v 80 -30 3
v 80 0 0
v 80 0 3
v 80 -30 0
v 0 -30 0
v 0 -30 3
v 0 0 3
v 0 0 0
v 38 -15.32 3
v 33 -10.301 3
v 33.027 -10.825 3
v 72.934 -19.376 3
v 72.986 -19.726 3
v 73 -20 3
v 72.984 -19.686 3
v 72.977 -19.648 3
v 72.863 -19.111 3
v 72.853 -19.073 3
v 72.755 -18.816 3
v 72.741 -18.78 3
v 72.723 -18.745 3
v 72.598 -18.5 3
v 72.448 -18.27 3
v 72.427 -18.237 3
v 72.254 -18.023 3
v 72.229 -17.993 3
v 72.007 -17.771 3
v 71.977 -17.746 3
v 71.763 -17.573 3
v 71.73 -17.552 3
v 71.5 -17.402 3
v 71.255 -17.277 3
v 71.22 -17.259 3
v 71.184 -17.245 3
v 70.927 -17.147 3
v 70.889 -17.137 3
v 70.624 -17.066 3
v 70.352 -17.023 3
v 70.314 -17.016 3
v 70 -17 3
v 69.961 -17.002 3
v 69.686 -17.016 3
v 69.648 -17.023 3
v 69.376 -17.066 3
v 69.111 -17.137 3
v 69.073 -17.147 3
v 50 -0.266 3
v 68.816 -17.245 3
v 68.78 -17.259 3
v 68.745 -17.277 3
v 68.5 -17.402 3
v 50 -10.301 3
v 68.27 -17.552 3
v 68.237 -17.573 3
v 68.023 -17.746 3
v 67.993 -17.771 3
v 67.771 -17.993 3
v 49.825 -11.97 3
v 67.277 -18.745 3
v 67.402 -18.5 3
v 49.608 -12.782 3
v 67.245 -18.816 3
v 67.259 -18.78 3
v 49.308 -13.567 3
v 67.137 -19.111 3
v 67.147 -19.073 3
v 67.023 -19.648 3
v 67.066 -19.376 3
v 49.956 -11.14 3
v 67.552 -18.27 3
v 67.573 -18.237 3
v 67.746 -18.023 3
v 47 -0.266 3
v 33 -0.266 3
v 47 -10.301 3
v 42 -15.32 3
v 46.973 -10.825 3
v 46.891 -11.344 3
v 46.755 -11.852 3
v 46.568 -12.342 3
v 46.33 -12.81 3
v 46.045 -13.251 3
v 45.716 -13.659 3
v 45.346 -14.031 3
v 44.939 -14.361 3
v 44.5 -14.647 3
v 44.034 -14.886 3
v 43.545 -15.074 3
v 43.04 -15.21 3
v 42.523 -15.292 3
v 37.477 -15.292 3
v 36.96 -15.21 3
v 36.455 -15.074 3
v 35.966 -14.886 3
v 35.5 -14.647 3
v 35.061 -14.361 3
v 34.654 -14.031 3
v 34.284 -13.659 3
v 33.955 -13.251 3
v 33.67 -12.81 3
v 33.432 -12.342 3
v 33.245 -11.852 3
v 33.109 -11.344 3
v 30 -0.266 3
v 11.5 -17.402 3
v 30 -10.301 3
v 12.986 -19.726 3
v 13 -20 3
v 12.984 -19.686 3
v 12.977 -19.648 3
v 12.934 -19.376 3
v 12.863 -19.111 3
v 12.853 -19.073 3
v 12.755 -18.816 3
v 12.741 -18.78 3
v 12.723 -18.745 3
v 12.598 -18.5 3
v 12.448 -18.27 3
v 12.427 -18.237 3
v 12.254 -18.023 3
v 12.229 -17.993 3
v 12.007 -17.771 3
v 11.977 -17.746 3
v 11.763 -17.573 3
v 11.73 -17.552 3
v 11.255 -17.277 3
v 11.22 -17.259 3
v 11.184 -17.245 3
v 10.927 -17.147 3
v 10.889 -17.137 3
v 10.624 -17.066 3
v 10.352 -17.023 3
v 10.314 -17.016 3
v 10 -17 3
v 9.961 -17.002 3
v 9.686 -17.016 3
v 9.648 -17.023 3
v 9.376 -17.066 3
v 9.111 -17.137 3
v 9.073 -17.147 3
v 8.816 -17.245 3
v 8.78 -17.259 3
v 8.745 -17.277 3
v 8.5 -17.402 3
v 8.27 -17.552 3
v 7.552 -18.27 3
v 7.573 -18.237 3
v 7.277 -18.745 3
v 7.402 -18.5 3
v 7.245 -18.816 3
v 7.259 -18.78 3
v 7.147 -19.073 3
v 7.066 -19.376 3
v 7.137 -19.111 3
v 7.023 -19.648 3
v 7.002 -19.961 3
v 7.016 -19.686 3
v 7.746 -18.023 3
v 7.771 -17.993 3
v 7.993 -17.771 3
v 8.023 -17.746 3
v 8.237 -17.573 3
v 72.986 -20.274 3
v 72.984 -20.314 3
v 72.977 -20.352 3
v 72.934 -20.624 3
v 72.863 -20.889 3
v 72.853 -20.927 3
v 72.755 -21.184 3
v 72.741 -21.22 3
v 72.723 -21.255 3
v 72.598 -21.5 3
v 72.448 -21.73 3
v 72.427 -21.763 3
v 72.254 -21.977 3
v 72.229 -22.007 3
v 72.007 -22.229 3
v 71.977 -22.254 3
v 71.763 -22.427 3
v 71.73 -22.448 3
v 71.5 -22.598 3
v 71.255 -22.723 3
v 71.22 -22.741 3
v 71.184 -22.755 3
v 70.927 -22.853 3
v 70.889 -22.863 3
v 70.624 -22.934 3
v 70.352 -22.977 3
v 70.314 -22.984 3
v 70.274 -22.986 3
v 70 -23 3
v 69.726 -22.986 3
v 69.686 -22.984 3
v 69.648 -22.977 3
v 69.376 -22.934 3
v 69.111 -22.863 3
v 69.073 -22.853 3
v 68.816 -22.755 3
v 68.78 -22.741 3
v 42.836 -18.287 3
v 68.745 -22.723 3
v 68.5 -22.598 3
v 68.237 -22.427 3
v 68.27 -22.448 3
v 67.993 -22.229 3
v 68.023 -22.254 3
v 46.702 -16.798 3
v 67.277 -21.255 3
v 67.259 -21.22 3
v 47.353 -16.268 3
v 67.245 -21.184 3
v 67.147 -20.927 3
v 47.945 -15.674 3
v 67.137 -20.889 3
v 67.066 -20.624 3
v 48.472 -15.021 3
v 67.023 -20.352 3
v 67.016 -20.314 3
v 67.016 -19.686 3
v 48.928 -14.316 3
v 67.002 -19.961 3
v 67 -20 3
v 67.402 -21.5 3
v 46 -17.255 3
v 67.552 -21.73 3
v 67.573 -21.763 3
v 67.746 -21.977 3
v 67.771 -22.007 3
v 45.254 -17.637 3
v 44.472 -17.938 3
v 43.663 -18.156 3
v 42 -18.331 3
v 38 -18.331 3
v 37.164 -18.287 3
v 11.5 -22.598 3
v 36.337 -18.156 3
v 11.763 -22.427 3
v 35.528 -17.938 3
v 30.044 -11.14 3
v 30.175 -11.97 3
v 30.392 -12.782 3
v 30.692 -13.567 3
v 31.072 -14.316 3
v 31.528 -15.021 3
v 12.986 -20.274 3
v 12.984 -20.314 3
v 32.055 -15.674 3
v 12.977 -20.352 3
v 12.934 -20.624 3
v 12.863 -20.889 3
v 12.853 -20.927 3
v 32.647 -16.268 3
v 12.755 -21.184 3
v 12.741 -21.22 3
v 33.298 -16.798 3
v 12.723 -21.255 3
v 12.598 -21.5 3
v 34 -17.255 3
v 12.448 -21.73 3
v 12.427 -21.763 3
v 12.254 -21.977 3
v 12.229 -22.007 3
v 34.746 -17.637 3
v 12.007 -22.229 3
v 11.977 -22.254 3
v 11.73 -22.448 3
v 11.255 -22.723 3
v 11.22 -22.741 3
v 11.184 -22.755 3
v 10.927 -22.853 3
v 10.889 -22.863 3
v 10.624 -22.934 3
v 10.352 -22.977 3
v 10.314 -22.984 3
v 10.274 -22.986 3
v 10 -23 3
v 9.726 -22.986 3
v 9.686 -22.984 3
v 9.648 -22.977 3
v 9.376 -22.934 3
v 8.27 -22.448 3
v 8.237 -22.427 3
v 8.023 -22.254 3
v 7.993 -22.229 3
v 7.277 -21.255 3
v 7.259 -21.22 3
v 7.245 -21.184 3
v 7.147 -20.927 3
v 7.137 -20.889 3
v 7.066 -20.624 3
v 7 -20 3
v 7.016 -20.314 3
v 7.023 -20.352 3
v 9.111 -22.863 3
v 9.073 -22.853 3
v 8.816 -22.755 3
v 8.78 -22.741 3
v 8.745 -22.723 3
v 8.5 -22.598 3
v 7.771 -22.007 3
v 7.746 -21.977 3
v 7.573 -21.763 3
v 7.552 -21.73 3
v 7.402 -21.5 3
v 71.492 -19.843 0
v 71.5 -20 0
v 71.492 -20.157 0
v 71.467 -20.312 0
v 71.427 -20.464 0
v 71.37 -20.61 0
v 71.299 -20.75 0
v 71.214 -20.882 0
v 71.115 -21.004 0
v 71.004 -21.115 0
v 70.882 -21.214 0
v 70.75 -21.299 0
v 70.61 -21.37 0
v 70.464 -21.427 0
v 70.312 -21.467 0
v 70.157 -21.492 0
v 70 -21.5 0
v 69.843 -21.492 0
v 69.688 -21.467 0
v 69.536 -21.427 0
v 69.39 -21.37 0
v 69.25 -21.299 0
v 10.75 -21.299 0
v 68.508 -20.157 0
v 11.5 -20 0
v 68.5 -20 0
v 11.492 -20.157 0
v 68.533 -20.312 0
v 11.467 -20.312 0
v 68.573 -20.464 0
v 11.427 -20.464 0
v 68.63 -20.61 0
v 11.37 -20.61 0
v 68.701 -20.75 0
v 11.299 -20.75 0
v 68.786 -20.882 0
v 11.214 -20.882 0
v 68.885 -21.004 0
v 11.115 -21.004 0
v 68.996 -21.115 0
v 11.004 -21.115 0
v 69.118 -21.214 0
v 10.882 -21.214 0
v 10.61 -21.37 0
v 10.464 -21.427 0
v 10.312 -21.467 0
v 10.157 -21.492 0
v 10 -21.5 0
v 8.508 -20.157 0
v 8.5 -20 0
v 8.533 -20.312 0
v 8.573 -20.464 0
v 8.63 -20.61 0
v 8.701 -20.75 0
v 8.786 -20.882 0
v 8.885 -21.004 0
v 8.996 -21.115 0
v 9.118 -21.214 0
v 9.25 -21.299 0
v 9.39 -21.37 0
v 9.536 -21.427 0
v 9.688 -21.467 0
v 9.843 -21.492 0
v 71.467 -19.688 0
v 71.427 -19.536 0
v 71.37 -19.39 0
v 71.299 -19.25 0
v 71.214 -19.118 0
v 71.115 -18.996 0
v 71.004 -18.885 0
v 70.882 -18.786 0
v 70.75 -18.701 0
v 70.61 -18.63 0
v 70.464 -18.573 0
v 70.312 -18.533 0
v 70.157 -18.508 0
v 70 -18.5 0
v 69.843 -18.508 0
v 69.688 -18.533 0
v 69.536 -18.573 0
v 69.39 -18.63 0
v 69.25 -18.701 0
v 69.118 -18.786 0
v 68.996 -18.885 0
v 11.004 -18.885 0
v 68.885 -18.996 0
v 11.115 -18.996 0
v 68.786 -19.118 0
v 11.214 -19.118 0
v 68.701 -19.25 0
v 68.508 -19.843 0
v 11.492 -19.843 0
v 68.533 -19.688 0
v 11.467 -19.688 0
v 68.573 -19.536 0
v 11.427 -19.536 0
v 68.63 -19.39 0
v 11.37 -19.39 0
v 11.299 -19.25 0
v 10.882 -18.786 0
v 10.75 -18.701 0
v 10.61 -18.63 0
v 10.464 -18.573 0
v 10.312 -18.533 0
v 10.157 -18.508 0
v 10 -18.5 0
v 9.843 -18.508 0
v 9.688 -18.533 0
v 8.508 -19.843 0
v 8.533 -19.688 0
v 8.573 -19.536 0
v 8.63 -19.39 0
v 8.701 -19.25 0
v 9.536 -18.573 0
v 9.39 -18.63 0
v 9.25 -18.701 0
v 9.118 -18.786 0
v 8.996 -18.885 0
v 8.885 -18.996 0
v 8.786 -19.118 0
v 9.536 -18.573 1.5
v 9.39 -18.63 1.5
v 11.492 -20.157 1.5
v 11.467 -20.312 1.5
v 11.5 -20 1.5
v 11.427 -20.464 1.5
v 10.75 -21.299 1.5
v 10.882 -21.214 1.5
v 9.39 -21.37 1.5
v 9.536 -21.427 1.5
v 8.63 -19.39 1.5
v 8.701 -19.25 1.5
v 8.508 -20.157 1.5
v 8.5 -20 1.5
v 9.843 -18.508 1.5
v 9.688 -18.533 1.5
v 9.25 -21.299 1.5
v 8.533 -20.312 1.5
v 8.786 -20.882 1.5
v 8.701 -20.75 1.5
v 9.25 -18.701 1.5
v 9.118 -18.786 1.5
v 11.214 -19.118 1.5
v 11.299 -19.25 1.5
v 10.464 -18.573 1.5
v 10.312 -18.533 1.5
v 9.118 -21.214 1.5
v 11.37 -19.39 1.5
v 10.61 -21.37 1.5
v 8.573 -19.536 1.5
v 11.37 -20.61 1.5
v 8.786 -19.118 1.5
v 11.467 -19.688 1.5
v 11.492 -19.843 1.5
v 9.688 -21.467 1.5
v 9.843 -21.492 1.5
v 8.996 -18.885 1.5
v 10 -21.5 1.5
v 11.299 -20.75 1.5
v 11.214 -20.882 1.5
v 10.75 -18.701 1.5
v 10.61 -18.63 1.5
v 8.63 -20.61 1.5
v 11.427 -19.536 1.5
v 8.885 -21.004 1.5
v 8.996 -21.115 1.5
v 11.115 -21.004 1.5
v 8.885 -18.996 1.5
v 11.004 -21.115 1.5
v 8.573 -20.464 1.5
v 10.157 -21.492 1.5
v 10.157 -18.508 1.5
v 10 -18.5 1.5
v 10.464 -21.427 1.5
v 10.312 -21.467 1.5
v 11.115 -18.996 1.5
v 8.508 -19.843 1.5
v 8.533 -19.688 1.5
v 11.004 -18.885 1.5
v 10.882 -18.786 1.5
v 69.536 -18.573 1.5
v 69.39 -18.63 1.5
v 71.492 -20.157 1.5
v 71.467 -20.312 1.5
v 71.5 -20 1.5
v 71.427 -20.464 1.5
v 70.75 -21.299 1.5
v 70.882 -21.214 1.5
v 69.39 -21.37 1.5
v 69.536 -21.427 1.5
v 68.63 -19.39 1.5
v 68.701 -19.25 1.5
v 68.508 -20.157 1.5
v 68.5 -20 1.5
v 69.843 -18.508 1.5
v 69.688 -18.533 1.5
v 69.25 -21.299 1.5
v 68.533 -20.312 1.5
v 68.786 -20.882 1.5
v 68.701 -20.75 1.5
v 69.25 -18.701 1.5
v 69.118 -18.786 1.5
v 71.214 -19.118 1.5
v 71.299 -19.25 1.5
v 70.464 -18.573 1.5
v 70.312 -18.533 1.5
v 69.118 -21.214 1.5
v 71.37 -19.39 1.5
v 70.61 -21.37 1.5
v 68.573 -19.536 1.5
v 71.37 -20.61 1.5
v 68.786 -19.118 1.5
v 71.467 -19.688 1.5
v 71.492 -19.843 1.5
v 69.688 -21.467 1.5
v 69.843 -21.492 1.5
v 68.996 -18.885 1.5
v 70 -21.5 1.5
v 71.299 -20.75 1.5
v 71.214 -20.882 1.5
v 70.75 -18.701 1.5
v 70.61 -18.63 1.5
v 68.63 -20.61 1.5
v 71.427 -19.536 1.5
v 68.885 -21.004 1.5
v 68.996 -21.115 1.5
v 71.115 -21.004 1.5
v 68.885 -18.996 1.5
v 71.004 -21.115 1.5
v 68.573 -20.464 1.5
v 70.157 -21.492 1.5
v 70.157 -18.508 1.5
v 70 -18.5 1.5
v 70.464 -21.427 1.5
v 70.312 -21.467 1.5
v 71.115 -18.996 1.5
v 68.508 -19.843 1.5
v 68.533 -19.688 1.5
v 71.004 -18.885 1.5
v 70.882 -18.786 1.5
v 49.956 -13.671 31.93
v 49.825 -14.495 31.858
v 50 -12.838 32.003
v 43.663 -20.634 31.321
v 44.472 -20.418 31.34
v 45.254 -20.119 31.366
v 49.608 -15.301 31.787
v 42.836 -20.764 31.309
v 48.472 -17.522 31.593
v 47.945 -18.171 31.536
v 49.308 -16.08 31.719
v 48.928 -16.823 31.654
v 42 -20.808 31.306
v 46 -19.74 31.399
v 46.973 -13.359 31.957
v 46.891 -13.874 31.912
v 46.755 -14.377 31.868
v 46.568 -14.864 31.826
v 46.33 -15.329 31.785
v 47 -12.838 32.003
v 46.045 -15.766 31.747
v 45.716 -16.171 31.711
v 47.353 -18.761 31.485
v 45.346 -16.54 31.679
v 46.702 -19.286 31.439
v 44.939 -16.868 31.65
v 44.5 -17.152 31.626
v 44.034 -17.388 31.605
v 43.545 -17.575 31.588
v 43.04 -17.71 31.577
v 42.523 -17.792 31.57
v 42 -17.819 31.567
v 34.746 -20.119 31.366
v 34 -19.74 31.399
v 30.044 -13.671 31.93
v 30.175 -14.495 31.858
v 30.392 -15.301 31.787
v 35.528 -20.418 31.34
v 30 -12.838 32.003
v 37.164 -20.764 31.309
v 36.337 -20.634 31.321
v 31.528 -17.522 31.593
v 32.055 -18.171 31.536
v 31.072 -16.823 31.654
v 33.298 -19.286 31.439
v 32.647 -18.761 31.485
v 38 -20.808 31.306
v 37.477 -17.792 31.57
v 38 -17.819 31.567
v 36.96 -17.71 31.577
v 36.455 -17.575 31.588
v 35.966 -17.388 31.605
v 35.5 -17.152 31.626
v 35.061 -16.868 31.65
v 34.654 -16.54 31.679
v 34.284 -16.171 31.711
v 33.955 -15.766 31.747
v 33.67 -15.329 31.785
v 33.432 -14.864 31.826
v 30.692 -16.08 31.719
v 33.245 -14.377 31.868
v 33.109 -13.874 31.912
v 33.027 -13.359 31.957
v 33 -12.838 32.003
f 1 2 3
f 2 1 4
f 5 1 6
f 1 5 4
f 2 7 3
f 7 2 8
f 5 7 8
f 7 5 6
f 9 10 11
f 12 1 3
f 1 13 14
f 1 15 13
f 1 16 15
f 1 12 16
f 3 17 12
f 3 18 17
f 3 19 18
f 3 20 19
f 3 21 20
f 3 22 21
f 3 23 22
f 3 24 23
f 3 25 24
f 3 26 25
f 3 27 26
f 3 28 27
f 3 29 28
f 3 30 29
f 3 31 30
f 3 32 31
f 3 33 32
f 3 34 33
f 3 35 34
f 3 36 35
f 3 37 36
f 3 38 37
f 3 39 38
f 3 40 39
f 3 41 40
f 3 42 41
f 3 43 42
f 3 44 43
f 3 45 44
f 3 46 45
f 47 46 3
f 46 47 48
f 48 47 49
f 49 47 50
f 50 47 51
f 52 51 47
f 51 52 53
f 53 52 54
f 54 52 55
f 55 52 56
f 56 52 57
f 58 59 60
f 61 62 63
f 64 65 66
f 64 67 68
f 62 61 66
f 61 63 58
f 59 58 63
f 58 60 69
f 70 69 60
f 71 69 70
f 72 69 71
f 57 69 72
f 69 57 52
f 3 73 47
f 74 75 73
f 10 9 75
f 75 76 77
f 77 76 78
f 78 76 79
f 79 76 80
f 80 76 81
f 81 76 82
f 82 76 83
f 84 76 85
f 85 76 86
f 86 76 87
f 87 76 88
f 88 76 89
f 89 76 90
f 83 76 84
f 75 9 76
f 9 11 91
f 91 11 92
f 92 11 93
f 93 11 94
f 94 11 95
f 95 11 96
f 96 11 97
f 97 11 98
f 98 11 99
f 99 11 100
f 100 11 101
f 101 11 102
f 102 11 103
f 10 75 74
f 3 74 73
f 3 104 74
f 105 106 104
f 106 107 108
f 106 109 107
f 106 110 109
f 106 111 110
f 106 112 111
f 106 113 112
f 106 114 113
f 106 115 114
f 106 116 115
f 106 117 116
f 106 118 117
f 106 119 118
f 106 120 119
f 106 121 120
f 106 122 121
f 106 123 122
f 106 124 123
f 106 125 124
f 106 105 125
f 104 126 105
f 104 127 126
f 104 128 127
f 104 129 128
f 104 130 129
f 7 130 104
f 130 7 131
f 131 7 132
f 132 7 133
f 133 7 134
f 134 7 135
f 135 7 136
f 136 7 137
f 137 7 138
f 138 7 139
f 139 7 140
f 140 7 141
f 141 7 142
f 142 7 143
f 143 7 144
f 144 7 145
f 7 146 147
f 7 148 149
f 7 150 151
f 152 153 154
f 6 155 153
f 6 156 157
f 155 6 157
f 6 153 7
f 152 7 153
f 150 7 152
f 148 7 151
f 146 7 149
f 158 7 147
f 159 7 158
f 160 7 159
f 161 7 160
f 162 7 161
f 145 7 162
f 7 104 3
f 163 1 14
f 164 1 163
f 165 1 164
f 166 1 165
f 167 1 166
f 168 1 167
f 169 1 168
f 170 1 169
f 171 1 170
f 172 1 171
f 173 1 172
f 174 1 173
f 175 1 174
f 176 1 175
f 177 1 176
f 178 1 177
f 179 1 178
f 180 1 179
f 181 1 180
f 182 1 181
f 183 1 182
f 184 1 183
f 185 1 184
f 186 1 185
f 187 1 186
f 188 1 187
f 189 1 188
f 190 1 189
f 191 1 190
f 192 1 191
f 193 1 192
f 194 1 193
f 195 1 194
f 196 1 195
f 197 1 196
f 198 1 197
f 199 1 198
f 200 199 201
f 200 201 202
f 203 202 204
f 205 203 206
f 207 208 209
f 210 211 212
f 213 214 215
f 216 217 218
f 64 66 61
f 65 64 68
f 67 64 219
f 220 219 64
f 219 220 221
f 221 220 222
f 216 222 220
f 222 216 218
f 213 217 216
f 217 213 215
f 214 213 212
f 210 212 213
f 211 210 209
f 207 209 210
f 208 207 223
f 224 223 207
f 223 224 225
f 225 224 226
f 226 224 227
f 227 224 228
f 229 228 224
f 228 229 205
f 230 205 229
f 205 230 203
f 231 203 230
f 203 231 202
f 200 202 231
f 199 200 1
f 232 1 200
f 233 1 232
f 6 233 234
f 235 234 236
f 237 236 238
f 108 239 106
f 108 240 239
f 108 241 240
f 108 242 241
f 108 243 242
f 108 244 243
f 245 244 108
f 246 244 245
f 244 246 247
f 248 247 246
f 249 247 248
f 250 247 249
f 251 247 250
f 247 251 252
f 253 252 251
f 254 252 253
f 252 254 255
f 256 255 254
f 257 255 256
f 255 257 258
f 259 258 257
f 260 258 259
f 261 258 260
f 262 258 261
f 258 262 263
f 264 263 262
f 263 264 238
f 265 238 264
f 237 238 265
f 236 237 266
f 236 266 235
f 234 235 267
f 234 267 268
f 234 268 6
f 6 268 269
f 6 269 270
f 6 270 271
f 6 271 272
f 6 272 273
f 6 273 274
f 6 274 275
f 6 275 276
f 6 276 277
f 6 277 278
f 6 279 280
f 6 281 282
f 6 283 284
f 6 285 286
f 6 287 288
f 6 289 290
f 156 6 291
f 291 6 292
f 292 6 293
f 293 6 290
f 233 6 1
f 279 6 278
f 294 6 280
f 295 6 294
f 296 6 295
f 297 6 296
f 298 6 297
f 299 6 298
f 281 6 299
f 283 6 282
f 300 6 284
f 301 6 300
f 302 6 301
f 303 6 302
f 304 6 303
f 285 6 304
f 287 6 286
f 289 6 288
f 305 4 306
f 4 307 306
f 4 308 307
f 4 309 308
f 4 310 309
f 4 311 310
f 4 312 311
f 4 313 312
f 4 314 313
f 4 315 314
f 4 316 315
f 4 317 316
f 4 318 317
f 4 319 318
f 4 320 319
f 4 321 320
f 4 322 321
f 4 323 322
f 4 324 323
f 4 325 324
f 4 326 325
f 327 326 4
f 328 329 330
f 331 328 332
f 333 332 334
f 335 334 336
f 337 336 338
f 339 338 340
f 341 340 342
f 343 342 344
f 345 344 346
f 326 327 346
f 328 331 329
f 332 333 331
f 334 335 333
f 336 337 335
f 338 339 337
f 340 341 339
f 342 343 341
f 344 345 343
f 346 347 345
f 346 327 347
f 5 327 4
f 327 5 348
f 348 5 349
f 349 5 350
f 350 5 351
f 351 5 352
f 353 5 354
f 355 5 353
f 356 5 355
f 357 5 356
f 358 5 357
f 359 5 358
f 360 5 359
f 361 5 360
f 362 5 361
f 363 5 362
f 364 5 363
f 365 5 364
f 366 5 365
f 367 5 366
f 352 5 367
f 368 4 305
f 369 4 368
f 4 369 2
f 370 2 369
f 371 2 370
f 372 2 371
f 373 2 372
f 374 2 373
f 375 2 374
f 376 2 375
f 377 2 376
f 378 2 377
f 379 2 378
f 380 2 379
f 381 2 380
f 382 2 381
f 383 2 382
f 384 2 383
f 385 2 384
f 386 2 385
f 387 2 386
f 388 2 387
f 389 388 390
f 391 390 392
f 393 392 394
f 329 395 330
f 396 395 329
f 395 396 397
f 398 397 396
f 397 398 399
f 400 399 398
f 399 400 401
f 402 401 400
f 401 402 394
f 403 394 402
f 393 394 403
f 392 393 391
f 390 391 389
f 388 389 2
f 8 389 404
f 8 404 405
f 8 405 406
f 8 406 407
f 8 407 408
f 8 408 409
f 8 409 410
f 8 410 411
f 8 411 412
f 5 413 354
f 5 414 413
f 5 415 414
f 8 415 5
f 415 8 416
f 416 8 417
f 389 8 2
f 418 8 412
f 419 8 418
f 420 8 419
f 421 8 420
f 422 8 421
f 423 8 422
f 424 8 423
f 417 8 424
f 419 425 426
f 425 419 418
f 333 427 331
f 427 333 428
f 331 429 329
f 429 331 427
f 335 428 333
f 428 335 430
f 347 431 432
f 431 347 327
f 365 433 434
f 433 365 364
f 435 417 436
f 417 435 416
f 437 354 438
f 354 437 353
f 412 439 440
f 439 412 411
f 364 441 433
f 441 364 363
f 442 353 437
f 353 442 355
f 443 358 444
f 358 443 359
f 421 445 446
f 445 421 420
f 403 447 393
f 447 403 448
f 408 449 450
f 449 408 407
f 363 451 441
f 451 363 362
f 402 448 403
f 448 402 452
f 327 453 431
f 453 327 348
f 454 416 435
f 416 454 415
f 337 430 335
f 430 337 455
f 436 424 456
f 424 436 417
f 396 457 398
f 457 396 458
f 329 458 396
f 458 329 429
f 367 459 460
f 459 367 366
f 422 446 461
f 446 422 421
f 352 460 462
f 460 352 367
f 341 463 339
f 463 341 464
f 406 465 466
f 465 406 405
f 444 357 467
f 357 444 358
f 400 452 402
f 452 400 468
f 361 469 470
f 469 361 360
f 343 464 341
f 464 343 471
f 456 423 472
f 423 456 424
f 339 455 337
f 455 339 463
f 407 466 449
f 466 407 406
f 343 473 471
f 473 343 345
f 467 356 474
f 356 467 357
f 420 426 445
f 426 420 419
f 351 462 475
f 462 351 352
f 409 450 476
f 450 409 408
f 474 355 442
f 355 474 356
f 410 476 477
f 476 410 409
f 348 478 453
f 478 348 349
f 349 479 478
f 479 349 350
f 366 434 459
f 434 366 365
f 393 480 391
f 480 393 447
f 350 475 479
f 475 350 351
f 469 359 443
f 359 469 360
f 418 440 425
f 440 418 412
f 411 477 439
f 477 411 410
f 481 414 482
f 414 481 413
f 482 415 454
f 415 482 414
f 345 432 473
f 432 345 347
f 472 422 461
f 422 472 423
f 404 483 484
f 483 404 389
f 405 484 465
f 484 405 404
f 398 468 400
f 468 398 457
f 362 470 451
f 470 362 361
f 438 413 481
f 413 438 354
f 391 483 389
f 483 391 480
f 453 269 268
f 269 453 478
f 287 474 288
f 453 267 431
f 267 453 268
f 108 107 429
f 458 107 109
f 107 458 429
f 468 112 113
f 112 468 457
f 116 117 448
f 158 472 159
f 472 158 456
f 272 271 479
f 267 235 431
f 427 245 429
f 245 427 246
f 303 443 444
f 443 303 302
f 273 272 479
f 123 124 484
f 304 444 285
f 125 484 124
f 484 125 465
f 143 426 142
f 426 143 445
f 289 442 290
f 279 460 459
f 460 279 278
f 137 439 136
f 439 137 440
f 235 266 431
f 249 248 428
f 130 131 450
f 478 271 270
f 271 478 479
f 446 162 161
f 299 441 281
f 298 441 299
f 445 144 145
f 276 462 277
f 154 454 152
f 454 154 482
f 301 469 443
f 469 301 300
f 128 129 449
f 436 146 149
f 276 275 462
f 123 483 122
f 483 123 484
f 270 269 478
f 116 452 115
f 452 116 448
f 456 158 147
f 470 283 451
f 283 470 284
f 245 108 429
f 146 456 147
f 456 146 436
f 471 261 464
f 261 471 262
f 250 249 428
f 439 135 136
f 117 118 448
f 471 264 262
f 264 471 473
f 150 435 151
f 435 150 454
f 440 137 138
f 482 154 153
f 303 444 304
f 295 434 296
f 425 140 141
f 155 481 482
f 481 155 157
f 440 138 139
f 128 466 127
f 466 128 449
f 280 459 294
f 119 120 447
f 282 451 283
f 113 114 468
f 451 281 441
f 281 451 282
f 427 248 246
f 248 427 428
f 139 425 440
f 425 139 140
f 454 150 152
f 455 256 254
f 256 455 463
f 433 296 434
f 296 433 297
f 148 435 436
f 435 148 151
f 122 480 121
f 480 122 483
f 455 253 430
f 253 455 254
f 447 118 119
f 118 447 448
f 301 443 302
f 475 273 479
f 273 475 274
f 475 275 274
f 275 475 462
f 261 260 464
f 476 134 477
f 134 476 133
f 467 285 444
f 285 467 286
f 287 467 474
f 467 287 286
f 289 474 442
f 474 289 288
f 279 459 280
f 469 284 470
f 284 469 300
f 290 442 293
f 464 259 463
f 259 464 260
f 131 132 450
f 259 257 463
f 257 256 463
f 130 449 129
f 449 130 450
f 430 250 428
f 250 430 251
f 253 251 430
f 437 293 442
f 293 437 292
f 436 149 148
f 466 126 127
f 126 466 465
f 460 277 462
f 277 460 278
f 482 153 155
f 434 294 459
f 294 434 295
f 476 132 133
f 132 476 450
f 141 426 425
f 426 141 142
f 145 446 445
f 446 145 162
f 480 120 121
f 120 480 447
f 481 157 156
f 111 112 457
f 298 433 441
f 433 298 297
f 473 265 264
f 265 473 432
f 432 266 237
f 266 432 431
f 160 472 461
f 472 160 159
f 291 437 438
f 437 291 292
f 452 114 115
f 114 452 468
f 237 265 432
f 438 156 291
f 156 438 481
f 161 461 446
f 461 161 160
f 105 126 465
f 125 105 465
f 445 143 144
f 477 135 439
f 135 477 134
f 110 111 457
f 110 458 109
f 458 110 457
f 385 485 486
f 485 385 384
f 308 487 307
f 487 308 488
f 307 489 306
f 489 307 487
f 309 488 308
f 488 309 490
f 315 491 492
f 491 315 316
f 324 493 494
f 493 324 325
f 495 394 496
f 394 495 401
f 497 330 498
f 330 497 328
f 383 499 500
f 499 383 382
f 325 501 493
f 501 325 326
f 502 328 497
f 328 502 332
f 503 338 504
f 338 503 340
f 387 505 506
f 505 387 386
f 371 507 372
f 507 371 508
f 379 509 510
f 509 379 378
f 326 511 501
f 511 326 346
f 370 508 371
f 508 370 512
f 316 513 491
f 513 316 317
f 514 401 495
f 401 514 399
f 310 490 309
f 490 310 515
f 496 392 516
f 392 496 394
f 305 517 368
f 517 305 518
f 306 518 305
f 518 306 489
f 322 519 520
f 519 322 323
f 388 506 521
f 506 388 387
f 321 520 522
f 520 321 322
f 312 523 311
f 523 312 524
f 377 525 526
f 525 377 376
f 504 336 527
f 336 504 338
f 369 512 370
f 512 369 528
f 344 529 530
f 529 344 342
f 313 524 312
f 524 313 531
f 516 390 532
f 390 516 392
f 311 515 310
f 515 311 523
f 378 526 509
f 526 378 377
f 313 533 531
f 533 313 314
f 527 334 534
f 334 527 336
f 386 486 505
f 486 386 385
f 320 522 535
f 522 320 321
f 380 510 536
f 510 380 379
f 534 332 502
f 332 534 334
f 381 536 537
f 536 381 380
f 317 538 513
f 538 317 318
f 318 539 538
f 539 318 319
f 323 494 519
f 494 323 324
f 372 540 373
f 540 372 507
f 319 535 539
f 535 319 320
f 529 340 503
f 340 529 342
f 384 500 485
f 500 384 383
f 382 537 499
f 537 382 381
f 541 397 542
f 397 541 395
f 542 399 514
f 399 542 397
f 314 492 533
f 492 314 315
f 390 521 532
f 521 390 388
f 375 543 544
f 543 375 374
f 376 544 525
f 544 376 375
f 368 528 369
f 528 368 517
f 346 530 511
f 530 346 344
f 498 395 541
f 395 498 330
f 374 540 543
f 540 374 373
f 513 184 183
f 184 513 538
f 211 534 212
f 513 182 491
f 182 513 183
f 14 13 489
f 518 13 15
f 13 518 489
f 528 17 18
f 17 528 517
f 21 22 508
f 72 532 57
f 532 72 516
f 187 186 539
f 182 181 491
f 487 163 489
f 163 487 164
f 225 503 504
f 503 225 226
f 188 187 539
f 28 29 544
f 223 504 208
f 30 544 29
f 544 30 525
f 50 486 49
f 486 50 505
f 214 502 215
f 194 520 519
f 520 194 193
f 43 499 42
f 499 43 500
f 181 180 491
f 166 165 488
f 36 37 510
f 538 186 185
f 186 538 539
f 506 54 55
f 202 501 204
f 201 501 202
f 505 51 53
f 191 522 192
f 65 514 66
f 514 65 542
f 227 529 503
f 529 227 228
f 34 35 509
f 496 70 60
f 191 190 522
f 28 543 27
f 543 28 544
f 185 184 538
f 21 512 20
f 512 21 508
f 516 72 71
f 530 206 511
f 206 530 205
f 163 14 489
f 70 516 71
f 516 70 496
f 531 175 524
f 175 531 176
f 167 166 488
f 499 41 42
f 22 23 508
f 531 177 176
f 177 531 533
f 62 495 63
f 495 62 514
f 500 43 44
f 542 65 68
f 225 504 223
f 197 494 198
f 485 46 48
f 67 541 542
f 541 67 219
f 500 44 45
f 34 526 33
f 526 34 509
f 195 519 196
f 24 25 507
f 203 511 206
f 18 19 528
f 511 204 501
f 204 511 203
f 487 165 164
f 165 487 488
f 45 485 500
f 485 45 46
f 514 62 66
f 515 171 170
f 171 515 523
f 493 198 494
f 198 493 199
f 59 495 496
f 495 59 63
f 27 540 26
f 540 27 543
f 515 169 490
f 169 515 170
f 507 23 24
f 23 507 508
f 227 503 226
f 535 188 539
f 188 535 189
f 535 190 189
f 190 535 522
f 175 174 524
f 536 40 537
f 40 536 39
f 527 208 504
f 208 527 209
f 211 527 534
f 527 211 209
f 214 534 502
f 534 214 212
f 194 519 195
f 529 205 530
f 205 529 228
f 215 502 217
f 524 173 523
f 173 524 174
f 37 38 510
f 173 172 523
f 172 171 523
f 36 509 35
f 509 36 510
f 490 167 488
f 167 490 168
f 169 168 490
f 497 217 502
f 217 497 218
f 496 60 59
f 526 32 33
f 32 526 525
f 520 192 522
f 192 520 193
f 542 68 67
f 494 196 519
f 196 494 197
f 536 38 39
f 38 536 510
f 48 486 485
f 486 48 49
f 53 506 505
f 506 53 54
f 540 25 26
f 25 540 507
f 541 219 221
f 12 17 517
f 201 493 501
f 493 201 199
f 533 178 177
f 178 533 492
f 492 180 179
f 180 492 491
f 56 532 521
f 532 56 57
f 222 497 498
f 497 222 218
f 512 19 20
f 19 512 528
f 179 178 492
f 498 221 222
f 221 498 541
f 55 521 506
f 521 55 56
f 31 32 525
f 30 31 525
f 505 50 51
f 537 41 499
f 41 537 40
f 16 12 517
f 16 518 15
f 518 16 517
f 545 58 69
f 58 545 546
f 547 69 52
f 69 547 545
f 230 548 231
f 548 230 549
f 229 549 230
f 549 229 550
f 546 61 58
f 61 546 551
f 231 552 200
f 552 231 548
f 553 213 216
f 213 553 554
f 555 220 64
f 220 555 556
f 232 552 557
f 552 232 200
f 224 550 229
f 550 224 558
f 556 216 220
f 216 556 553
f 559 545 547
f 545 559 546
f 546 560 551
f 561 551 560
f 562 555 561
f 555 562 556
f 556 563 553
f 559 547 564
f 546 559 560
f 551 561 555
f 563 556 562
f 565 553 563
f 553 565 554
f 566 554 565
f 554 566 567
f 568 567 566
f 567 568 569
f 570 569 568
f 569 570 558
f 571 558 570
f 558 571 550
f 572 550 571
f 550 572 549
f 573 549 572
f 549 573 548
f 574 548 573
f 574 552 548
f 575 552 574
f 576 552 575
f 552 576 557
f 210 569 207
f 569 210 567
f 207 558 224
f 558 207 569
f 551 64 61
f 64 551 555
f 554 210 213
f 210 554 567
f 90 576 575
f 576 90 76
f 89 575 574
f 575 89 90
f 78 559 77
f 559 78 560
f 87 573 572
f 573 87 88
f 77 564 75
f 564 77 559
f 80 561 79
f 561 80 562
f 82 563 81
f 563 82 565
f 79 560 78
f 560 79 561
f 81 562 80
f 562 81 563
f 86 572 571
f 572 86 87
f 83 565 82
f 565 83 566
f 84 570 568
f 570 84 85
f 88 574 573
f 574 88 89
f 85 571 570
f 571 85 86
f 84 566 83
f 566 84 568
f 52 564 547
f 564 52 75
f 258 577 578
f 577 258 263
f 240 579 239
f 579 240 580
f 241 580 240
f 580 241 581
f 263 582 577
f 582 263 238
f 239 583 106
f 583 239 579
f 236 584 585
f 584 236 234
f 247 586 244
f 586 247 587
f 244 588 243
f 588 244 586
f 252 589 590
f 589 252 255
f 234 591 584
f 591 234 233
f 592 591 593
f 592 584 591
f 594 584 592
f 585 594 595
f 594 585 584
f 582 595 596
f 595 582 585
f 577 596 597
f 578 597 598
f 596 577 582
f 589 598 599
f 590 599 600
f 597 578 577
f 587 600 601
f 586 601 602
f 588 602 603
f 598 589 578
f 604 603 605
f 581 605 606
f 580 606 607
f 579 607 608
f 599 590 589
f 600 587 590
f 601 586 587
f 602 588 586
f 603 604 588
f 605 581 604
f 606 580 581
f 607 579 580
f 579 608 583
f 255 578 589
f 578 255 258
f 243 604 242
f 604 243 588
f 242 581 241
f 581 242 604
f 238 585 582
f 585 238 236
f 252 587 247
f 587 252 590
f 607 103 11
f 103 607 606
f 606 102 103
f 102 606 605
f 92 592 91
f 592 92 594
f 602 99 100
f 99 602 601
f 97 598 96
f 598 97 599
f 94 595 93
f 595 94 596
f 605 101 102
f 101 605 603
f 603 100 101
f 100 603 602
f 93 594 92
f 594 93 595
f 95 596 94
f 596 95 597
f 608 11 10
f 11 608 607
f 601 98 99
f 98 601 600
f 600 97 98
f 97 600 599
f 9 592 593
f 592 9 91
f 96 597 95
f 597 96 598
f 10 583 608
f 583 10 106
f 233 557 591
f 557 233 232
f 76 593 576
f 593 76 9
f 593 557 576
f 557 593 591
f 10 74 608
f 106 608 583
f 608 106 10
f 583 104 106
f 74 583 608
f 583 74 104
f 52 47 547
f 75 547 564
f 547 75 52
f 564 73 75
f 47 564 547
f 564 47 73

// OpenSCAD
$fn = 60;

rotate([90, 0, 0]) {
 difference () {
   cube([80, 3, 30]);
   translate([10, 4, 20]) rotate([90, 0, 0]) cylinder(5, r=1.5);
   translate([10, 1.5, 20]) rotate([-90, 0, 0]) cylinder(2, r1=1.5, r2=3.5);
   translate([70, 4, 20]) rotate([90, 0, 0]) cylinder(5, r=1.5);
   translate([70, 1.5, 20]) rotate([-90, 0, 0]) cylinder(2, r1=1.5, r2=3.5);
 

 
   }
 
 rotate([5, 0, 0])  translate([42, 3, 10]) rotate([-90, 0, 0]) difference () { cylinder(30, r=8); 
    cylinder(31, r=5); 
    translate([-9, -9, 0]) cube([9, 18, 31]);
    translate([0, 0, 0]) cube([9, 9, 31]);

    }
rotate([5, 0, 0])   translate([38, 3, 10]) rotate([-90, 0, 0]) difference () {
    cylinder(30, r=8); 
    cylinder(31, r=5);
    translate([0, -9, 0]) cube([9, 18, 31]);
    translate([-9, 0, 0]) cube([9, 9, 31]);
  }
   
rotate([5, 0, 0])   translate([38, 3, 15]) cube([4, 30, 3]);
  
   

rotate([5, 0, 0]) translate([33, 3, 0]) rotate([0, -90, 0]) {
linear_extrude(height=3) {
polygon([[0, 0], [10, 0], [10, 30]]);
}
}

rotate([5, 0, 0]) translate([50, 3, 0]) rotate([0, -90, 0]) {
linear_extrude(height=3) {
polygon([[0, 0], [10, 0], [10, 30]]);
}
}

}
